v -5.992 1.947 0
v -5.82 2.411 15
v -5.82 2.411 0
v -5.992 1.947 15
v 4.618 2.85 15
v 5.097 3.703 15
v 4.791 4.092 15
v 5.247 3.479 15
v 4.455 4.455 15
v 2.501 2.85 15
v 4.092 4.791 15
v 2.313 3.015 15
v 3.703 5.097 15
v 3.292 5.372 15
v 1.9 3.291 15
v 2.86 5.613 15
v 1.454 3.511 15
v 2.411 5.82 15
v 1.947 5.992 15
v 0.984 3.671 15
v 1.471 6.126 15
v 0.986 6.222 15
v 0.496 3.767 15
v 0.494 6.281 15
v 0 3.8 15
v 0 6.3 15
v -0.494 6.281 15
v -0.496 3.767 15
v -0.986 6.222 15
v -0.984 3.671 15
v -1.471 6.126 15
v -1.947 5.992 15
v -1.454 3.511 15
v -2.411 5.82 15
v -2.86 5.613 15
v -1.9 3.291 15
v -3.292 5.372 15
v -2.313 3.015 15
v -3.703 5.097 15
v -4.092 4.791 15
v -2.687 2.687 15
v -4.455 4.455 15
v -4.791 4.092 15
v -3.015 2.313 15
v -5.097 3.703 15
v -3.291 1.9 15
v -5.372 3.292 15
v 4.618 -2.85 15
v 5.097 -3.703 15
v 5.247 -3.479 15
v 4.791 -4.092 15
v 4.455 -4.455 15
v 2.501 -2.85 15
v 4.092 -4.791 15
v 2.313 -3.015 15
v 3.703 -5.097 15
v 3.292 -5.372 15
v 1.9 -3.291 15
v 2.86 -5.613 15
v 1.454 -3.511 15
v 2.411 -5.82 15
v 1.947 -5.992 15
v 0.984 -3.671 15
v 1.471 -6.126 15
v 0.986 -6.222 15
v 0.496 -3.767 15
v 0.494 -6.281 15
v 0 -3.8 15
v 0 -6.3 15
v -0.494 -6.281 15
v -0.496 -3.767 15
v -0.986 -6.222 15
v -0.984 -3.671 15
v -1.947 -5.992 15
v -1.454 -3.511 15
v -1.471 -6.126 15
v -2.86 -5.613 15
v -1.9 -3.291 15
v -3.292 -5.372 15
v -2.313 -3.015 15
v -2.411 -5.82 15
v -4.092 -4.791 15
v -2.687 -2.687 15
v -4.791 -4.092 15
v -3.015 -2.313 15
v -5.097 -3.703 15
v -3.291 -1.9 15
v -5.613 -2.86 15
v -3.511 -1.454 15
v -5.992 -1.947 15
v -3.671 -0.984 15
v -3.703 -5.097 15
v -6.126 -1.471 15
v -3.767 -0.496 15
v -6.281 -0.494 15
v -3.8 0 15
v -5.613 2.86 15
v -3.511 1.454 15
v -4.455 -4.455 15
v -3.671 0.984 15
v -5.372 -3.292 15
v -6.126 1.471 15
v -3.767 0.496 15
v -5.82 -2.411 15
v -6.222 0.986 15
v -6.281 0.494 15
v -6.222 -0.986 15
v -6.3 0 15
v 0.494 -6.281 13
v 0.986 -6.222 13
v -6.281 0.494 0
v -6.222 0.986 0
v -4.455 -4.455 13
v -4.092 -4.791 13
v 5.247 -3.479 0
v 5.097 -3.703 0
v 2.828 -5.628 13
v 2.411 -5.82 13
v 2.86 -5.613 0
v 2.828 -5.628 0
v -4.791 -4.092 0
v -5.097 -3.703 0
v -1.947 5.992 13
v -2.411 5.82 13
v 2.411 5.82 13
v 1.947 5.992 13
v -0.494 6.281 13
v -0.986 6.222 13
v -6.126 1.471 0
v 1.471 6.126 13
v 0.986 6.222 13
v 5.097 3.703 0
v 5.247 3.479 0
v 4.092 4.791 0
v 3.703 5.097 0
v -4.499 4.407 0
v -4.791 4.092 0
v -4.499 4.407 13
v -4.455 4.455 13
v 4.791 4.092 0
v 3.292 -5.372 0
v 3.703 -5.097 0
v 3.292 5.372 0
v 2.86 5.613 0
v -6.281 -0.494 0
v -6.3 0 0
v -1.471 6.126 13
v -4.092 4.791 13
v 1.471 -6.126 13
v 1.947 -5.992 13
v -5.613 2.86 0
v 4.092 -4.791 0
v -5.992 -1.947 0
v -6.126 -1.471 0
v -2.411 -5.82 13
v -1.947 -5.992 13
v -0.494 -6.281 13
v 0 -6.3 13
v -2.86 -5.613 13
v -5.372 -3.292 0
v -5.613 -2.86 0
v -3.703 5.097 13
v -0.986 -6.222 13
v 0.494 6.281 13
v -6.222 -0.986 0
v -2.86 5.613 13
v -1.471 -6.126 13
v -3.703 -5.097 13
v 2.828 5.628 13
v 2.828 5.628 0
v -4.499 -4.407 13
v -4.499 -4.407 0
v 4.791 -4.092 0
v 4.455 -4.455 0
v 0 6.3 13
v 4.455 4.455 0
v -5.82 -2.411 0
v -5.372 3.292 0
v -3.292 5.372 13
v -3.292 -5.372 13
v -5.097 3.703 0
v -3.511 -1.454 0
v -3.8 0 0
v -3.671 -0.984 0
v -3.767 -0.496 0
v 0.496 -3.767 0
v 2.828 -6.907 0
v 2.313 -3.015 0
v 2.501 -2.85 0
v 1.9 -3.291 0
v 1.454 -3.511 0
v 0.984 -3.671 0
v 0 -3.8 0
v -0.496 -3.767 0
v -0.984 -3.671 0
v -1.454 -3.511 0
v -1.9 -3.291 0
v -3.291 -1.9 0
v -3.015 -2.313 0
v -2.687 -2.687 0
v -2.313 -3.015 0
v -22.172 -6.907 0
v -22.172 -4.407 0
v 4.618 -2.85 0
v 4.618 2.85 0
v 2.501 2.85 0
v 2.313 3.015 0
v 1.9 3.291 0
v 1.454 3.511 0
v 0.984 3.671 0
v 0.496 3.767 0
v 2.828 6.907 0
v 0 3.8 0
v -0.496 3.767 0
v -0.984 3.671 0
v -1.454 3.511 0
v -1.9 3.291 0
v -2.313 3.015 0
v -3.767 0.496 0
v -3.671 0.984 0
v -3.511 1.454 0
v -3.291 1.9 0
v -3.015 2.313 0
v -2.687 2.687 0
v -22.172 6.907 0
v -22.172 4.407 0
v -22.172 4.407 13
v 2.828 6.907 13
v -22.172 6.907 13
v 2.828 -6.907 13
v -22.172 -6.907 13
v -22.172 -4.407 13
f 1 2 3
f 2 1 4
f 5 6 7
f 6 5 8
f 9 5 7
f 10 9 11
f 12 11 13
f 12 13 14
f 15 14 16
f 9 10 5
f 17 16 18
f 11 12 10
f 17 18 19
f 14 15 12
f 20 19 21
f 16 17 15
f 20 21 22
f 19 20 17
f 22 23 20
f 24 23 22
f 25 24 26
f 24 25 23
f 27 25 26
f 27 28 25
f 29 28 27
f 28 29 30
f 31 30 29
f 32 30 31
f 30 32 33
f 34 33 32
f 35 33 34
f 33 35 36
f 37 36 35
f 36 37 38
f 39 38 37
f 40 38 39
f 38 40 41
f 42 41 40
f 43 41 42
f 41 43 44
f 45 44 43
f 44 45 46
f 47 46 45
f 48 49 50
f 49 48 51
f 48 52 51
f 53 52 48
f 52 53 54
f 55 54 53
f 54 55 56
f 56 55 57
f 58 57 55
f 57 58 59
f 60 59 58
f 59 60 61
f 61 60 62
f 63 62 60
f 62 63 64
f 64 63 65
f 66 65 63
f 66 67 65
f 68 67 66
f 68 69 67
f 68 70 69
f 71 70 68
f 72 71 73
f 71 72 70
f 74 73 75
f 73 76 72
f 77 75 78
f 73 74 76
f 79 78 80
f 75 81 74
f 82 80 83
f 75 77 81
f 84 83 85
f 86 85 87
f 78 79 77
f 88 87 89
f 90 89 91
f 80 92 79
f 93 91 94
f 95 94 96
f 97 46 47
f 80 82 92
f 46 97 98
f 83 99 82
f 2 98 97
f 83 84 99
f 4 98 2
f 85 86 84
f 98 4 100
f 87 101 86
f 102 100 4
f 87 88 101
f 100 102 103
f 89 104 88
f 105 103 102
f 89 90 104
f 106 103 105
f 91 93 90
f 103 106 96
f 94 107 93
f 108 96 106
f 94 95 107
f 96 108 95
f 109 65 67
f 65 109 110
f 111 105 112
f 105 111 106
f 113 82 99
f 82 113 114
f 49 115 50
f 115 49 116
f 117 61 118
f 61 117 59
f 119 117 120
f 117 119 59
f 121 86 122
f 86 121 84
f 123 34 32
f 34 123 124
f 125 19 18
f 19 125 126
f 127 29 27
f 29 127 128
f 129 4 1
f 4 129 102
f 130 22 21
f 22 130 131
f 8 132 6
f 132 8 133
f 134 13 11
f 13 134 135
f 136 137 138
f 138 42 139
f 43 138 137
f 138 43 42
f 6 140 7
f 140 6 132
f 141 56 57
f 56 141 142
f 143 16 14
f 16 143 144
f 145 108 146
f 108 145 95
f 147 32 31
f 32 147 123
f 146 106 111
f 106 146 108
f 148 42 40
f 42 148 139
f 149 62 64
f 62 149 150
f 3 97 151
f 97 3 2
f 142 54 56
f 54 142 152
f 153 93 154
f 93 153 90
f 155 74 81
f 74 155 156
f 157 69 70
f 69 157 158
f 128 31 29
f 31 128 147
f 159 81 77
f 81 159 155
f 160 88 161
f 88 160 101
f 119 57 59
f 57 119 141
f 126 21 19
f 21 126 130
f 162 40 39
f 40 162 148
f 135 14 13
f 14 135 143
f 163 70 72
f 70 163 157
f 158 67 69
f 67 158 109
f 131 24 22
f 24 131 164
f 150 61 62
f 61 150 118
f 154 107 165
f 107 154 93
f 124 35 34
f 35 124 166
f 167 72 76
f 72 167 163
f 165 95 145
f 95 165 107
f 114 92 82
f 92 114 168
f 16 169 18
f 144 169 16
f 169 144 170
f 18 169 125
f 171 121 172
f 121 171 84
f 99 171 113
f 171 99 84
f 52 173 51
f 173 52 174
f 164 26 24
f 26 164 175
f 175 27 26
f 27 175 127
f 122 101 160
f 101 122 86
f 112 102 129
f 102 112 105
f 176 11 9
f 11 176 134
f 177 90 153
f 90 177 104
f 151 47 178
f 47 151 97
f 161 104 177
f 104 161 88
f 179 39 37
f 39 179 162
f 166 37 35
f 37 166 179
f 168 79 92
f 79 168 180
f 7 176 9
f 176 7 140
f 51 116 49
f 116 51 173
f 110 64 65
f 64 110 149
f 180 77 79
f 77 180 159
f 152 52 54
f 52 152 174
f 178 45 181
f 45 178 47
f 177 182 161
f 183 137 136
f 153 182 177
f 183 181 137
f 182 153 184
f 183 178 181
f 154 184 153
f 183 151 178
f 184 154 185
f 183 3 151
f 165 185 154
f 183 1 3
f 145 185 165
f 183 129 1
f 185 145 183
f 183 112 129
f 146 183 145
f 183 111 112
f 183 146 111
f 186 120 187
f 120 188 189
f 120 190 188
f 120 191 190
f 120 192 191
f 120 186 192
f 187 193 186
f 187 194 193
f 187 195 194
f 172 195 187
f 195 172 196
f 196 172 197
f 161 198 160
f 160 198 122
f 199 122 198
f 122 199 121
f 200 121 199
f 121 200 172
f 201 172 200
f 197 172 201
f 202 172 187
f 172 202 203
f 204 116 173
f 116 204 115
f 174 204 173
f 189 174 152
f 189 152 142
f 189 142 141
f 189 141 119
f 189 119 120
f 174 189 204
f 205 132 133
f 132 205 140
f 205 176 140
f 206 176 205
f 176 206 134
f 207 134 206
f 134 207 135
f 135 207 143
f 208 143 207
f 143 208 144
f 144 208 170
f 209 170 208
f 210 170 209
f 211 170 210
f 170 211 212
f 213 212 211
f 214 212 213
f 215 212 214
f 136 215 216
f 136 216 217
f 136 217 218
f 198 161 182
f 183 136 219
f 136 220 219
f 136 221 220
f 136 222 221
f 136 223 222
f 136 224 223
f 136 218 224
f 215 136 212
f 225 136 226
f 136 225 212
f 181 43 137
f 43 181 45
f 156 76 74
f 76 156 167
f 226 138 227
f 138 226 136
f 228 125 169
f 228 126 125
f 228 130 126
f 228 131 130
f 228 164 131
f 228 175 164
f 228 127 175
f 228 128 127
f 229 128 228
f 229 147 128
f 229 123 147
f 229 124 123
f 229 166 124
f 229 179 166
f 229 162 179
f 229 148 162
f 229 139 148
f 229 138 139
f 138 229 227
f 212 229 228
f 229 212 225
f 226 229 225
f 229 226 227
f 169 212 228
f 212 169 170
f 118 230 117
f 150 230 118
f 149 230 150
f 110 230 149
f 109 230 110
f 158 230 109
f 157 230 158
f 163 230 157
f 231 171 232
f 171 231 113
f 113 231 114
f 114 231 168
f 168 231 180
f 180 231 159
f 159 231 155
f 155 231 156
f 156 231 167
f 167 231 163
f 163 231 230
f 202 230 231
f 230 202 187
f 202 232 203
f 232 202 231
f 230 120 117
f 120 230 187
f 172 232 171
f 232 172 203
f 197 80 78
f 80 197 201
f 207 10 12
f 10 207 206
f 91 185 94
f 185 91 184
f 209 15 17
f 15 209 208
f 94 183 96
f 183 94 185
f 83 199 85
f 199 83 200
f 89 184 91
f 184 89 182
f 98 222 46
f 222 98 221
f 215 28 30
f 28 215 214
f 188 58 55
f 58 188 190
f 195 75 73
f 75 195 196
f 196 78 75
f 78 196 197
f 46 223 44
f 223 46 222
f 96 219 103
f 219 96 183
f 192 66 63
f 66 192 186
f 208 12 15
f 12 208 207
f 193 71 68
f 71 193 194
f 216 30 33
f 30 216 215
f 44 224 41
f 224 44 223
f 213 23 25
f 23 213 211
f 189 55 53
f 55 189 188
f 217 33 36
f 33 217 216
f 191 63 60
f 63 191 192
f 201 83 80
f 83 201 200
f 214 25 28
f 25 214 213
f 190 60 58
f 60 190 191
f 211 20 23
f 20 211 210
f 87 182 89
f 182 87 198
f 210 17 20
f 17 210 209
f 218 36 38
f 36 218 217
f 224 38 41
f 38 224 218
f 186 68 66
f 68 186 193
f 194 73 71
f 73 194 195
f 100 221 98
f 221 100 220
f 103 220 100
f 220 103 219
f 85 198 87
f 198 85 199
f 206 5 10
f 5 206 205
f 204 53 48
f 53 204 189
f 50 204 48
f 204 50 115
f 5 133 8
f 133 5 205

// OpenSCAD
// washer dimentions
id = 7.6;
width = 2.5;
h = 15;
tabl = 8;
handle_length = 25;

$fa=.5;
$fs = .5;

od = id + 2*width;


difference(){

	x = tabl/sqrt(2);
	
	union(){
		translate([0,0,h/2]) cylinder(r=od/2,h=h,center=true);
		translate([-handle_length / 2 + x / 2,x,(h-2)/2]) rotate([0,0,-90]) cube([width,handle_length,h-2],center=true);
		translate([-handle_length / 2 + x / 2,-x,(h-2)/2]) rotate([0,0,90]) cube([width,handle_length,h-2],center=true);
		}
		translate([0,0,h/2]) cylinder(r=id/2,h=h+1,center=true);
		translate([tabl/2,0,h/2]) rotate([0,0,0]) cube([tabl,id*.75,h+2],center=true);

		translate([((2*tabl+width)/sqrt(2)),0,h/2]) rotate([0,0,45]) cube([2*tabl,2*tabl,h+2],center=true);	
	
}
